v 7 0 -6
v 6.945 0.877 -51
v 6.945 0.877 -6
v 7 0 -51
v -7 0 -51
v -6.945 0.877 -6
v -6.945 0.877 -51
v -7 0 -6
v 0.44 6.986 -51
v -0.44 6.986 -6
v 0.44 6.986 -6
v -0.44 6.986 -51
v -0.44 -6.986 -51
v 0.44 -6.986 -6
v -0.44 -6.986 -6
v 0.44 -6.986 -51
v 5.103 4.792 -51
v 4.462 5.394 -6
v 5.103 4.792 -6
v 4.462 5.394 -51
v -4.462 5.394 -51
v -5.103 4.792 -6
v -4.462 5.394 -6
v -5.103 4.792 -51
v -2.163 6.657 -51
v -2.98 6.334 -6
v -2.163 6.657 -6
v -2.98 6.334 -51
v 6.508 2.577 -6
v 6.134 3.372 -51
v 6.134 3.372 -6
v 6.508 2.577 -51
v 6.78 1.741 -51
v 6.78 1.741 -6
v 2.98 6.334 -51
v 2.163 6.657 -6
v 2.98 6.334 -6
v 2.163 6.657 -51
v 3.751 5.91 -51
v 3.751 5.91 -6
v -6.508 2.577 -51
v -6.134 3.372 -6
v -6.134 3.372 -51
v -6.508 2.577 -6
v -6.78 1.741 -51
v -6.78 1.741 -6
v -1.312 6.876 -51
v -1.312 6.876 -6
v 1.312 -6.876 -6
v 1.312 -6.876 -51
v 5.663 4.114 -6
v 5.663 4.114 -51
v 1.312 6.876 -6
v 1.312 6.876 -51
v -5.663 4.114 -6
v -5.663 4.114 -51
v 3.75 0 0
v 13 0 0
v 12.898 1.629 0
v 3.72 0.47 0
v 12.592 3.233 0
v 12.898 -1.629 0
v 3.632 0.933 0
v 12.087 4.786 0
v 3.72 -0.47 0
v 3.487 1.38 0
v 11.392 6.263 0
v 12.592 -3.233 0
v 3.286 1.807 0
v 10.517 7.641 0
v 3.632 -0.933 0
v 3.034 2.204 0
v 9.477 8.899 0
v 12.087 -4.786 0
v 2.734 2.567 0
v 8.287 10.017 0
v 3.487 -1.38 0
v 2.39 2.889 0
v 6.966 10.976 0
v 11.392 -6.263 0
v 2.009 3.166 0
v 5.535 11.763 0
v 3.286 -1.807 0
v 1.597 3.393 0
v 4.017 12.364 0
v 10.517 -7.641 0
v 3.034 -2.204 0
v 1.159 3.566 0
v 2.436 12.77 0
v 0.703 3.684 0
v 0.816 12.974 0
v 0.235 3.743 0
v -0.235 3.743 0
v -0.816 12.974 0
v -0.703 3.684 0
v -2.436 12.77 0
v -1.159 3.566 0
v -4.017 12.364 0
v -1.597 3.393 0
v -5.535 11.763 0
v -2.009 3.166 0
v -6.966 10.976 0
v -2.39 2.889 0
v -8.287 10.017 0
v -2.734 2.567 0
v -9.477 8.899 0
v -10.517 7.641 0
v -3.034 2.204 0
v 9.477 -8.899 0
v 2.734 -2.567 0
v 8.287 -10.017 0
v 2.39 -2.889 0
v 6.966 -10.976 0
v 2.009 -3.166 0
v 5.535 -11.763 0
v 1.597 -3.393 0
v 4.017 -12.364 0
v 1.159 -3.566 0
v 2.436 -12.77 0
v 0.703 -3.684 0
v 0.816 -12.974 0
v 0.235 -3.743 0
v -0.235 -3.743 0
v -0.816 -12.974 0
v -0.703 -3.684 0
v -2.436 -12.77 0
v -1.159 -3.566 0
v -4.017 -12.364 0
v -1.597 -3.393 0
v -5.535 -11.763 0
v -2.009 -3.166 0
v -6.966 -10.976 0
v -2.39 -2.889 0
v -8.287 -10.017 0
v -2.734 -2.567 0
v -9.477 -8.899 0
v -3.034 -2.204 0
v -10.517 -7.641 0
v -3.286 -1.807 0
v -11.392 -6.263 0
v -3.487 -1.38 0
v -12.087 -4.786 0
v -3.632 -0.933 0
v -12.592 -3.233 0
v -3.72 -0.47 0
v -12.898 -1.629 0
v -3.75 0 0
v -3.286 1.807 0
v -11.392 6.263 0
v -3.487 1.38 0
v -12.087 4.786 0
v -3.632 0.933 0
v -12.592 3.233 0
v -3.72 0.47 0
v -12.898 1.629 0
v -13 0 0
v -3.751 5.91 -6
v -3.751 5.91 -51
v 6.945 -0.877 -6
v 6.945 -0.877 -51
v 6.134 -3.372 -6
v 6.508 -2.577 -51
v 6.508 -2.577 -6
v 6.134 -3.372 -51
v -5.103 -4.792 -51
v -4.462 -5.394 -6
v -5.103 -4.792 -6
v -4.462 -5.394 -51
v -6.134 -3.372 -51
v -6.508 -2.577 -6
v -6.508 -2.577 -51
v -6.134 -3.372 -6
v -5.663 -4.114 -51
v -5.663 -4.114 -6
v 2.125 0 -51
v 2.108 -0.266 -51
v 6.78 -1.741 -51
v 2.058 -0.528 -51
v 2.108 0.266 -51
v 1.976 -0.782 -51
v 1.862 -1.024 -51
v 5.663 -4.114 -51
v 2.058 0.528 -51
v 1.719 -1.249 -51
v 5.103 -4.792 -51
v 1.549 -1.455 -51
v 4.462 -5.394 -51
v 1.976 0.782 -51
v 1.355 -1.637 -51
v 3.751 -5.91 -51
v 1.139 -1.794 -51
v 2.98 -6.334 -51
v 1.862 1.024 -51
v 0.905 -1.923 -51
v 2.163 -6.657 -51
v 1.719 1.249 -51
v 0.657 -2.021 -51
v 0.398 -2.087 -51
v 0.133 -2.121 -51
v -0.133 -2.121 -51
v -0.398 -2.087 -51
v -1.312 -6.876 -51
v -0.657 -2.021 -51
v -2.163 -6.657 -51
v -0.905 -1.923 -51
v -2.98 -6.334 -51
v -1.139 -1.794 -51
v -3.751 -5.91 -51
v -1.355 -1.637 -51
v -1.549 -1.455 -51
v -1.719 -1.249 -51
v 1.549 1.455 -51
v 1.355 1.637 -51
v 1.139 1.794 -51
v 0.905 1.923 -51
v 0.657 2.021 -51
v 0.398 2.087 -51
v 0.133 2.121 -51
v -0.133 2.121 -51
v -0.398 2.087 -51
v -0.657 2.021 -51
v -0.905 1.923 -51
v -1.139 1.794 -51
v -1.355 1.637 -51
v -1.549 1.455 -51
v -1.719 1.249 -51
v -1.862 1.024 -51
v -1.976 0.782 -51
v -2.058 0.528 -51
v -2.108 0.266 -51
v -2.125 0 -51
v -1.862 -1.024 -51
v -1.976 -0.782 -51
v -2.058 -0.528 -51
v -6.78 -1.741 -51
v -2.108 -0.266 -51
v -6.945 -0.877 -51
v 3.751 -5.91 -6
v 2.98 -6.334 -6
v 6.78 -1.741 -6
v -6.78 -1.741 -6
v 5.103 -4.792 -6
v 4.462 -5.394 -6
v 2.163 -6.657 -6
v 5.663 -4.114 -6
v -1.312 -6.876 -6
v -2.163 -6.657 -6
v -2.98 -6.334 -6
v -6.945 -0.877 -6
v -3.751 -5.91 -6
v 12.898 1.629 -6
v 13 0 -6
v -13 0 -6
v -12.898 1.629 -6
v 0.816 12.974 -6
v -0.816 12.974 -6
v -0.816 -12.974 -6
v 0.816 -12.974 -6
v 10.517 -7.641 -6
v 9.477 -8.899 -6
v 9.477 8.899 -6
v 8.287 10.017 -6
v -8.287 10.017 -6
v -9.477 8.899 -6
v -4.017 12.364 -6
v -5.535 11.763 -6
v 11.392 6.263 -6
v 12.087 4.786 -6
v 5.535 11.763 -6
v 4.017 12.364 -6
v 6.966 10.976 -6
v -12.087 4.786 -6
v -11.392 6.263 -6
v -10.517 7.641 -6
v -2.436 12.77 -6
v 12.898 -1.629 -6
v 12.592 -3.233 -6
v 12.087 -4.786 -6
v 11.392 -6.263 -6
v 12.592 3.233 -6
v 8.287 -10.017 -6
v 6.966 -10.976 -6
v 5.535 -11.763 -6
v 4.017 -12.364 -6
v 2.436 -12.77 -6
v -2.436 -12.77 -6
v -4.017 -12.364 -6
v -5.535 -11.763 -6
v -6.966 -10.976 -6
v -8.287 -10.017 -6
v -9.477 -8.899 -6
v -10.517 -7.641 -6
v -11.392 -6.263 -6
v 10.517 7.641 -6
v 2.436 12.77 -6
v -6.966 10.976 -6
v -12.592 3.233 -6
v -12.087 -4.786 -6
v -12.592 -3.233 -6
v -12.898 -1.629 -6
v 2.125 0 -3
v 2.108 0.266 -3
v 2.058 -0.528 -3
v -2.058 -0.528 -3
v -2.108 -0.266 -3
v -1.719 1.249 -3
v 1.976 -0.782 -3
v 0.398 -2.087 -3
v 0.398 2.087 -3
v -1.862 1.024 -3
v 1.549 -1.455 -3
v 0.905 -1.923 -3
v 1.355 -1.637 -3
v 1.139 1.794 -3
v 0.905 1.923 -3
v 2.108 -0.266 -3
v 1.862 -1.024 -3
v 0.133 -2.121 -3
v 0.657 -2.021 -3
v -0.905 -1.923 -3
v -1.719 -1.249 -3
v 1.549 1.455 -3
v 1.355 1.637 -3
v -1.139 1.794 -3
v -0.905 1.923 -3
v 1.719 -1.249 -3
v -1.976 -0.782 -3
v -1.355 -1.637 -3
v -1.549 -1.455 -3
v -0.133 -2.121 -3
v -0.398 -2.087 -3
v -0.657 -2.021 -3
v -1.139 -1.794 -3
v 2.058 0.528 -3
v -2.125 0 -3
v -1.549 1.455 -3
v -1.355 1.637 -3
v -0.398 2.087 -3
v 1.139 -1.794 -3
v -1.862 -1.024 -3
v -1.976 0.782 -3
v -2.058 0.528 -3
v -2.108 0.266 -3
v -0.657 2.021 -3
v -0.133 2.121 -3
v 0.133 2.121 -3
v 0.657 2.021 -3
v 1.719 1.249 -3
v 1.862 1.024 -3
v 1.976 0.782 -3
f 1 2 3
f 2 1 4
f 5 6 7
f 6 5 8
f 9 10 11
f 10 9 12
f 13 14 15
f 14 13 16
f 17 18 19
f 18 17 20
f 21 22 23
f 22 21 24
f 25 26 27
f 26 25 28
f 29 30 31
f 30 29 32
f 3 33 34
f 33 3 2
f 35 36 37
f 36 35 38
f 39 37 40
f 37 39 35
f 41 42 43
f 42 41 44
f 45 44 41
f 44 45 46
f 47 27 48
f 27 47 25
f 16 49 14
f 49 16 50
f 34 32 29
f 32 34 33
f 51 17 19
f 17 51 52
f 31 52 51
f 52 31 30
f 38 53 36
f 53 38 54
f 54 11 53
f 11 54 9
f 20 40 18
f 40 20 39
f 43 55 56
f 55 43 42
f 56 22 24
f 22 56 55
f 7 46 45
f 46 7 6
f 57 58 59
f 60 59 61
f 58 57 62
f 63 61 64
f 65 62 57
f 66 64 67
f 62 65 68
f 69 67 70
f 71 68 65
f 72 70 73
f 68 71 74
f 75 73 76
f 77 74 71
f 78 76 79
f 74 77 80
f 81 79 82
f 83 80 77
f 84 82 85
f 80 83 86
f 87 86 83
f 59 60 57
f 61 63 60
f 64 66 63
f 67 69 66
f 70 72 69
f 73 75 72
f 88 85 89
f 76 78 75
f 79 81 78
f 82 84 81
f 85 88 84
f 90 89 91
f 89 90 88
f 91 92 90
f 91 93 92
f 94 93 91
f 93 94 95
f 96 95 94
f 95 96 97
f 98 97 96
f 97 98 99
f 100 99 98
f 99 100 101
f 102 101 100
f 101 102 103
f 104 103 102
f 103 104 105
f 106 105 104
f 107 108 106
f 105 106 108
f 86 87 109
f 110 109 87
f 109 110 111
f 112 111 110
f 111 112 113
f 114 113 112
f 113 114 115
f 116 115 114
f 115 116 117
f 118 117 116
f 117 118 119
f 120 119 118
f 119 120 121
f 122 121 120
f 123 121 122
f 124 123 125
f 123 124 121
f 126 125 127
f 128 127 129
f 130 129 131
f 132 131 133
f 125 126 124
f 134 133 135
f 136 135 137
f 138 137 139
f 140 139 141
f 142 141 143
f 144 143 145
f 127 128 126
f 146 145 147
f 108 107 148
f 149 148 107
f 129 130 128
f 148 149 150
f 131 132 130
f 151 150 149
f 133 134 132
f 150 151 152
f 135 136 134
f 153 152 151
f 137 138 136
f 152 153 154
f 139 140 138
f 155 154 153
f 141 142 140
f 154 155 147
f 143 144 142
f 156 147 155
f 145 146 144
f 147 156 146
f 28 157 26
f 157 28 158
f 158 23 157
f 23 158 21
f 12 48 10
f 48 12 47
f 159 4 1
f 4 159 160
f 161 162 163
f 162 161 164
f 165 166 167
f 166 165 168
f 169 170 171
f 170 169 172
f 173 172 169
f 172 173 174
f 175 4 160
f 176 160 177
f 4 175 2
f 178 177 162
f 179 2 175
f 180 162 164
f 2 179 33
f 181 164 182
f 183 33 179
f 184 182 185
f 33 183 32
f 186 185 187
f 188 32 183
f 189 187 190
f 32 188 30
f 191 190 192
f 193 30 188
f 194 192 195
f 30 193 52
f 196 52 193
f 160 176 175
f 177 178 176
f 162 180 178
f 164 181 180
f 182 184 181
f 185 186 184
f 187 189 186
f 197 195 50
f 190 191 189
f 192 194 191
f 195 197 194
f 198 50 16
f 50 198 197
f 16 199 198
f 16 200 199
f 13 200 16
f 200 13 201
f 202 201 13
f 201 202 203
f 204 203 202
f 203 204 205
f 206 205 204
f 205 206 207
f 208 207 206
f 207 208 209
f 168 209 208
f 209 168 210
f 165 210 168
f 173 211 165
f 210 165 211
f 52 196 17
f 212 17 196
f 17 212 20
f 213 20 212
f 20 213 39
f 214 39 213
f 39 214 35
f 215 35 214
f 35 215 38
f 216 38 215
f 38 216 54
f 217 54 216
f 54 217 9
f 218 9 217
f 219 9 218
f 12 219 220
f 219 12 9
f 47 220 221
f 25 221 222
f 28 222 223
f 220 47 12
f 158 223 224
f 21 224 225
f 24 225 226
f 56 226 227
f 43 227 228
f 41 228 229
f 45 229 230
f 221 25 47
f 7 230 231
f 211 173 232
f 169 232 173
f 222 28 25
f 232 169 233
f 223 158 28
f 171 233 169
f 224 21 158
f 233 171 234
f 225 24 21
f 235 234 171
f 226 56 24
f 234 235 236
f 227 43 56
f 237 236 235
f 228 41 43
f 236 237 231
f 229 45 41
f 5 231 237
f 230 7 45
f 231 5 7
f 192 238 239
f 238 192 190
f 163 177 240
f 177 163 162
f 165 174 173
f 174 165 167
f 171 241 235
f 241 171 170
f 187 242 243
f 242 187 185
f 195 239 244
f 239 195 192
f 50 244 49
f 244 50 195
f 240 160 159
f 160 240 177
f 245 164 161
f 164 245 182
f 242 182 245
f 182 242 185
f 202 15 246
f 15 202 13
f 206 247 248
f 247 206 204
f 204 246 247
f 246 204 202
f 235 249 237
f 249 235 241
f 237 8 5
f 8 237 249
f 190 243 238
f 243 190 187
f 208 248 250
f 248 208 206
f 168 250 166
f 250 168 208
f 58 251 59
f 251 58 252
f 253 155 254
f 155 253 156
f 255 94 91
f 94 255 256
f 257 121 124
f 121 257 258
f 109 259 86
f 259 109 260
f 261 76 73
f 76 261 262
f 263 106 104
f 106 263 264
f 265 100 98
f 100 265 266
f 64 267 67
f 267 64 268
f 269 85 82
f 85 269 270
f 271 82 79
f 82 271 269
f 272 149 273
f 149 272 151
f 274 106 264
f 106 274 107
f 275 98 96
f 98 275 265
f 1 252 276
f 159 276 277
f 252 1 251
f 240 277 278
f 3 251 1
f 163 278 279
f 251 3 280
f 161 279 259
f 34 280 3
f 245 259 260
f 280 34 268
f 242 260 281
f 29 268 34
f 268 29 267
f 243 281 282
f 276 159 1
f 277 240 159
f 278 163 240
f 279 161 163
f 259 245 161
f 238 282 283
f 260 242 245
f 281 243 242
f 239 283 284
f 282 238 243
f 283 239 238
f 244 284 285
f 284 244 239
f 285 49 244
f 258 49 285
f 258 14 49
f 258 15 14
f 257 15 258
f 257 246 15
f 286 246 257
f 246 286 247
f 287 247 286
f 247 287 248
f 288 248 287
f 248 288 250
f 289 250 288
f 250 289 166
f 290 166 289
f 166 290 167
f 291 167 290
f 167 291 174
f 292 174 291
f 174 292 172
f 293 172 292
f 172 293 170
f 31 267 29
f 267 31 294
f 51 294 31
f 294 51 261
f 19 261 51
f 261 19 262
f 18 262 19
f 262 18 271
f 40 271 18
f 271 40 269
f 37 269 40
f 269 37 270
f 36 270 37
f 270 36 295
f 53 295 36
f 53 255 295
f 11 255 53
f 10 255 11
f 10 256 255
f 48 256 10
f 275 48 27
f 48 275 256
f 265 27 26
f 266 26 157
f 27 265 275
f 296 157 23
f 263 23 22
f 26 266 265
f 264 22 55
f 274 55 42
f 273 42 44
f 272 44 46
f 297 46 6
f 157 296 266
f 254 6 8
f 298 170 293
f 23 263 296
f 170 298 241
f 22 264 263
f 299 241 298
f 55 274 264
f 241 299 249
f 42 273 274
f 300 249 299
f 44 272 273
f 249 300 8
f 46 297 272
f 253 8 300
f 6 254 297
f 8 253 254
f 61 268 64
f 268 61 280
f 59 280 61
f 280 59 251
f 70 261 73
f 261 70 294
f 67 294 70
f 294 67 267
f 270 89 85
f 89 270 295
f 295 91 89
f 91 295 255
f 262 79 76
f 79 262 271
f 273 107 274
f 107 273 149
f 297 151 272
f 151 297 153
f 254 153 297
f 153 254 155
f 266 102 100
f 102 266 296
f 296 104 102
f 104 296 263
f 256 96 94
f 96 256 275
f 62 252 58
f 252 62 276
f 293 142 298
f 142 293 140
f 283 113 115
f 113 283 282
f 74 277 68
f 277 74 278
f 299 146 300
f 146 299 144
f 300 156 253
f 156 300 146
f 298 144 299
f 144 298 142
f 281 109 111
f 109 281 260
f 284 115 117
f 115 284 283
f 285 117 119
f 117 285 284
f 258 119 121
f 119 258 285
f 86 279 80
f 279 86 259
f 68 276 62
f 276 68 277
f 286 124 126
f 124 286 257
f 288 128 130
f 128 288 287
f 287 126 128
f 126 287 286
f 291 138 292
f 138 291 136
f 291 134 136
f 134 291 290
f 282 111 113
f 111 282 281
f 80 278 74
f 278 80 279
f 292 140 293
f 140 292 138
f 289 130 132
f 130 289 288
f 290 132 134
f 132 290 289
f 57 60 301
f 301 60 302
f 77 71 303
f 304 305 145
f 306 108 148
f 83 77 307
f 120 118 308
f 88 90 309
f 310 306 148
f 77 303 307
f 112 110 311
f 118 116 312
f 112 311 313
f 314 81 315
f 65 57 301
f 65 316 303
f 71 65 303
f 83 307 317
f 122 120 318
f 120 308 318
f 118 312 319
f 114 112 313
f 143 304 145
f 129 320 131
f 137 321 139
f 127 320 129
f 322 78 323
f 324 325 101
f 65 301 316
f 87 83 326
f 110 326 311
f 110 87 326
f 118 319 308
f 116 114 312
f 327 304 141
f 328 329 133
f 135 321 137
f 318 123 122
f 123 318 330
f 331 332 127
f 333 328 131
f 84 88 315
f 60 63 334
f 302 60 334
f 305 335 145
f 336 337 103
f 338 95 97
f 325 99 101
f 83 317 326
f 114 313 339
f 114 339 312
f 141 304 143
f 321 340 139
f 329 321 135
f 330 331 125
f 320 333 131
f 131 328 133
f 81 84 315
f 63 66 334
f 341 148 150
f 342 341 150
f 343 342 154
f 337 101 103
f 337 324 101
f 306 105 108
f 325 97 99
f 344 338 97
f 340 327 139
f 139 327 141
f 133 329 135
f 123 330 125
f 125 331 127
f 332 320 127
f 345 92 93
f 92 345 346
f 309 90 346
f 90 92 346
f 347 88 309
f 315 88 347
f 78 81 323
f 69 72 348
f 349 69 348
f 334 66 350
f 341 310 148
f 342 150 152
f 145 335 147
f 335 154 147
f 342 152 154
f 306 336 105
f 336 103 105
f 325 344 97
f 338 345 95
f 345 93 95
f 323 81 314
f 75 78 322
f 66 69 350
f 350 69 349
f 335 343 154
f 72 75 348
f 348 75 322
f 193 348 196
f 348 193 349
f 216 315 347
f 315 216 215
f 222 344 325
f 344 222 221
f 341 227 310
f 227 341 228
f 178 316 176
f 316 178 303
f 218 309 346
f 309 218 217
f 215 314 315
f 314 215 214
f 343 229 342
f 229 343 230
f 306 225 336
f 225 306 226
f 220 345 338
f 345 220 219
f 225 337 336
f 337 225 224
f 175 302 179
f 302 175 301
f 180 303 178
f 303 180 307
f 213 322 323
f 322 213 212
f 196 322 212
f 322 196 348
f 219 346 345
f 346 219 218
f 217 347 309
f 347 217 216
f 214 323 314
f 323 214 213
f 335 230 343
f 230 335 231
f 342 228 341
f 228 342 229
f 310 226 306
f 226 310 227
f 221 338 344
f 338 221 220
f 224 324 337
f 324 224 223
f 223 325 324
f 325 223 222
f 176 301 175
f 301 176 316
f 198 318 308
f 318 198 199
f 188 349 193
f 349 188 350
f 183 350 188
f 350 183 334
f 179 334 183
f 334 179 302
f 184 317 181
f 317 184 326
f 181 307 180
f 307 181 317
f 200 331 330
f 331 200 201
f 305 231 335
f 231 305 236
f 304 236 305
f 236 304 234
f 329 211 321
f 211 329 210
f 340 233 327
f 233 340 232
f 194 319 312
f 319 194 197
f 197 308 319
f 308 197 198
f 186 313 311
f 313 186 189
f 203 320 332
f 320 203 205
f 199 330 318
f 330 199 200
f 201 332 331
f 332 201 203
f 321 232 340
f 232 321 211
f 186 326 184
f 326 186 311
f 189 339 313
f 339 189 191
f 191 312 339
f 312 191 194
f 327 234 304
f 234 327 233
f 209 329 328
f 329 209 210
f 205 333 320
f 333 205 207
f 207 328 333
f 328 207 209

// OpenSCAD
$fn = 50;


difference() {
	union() {
		translate(v = [0, 0, -51.0000000000]) {
			cylinder(h = 51, r = 7.0000000000);
		}
		translate(v = [0, 0, -6.0000000000]) {
			cylinder(h = 6, r = 13.0000000000);
		}
	}
	union() {
		translate(v = [0, 0, 0]) {
			rotate(a = [0, 0, 0]) {
				difference() {
					union() {
						#translate(v = [0, 0, -51.0000000000]) {
							cylinder(h = 51, r = 2.0000000000);
						}
						#translate(v = [0, 0, -3]) {
							cylinder(h = 3, r1 = 2.1250000000, r2 = 3.7500000000);
						}
						#translate(v = [0, 0, -51.0000000000]) {
							cylinder(h = 51, r = 2.1250000000);
						}
						#translate(v = [0, 0, -51.0000000000]) {
							cylinder(h = 51, r = 2.0000000000);
						}
					}
					union();
				}
			}
		}
	}
}
